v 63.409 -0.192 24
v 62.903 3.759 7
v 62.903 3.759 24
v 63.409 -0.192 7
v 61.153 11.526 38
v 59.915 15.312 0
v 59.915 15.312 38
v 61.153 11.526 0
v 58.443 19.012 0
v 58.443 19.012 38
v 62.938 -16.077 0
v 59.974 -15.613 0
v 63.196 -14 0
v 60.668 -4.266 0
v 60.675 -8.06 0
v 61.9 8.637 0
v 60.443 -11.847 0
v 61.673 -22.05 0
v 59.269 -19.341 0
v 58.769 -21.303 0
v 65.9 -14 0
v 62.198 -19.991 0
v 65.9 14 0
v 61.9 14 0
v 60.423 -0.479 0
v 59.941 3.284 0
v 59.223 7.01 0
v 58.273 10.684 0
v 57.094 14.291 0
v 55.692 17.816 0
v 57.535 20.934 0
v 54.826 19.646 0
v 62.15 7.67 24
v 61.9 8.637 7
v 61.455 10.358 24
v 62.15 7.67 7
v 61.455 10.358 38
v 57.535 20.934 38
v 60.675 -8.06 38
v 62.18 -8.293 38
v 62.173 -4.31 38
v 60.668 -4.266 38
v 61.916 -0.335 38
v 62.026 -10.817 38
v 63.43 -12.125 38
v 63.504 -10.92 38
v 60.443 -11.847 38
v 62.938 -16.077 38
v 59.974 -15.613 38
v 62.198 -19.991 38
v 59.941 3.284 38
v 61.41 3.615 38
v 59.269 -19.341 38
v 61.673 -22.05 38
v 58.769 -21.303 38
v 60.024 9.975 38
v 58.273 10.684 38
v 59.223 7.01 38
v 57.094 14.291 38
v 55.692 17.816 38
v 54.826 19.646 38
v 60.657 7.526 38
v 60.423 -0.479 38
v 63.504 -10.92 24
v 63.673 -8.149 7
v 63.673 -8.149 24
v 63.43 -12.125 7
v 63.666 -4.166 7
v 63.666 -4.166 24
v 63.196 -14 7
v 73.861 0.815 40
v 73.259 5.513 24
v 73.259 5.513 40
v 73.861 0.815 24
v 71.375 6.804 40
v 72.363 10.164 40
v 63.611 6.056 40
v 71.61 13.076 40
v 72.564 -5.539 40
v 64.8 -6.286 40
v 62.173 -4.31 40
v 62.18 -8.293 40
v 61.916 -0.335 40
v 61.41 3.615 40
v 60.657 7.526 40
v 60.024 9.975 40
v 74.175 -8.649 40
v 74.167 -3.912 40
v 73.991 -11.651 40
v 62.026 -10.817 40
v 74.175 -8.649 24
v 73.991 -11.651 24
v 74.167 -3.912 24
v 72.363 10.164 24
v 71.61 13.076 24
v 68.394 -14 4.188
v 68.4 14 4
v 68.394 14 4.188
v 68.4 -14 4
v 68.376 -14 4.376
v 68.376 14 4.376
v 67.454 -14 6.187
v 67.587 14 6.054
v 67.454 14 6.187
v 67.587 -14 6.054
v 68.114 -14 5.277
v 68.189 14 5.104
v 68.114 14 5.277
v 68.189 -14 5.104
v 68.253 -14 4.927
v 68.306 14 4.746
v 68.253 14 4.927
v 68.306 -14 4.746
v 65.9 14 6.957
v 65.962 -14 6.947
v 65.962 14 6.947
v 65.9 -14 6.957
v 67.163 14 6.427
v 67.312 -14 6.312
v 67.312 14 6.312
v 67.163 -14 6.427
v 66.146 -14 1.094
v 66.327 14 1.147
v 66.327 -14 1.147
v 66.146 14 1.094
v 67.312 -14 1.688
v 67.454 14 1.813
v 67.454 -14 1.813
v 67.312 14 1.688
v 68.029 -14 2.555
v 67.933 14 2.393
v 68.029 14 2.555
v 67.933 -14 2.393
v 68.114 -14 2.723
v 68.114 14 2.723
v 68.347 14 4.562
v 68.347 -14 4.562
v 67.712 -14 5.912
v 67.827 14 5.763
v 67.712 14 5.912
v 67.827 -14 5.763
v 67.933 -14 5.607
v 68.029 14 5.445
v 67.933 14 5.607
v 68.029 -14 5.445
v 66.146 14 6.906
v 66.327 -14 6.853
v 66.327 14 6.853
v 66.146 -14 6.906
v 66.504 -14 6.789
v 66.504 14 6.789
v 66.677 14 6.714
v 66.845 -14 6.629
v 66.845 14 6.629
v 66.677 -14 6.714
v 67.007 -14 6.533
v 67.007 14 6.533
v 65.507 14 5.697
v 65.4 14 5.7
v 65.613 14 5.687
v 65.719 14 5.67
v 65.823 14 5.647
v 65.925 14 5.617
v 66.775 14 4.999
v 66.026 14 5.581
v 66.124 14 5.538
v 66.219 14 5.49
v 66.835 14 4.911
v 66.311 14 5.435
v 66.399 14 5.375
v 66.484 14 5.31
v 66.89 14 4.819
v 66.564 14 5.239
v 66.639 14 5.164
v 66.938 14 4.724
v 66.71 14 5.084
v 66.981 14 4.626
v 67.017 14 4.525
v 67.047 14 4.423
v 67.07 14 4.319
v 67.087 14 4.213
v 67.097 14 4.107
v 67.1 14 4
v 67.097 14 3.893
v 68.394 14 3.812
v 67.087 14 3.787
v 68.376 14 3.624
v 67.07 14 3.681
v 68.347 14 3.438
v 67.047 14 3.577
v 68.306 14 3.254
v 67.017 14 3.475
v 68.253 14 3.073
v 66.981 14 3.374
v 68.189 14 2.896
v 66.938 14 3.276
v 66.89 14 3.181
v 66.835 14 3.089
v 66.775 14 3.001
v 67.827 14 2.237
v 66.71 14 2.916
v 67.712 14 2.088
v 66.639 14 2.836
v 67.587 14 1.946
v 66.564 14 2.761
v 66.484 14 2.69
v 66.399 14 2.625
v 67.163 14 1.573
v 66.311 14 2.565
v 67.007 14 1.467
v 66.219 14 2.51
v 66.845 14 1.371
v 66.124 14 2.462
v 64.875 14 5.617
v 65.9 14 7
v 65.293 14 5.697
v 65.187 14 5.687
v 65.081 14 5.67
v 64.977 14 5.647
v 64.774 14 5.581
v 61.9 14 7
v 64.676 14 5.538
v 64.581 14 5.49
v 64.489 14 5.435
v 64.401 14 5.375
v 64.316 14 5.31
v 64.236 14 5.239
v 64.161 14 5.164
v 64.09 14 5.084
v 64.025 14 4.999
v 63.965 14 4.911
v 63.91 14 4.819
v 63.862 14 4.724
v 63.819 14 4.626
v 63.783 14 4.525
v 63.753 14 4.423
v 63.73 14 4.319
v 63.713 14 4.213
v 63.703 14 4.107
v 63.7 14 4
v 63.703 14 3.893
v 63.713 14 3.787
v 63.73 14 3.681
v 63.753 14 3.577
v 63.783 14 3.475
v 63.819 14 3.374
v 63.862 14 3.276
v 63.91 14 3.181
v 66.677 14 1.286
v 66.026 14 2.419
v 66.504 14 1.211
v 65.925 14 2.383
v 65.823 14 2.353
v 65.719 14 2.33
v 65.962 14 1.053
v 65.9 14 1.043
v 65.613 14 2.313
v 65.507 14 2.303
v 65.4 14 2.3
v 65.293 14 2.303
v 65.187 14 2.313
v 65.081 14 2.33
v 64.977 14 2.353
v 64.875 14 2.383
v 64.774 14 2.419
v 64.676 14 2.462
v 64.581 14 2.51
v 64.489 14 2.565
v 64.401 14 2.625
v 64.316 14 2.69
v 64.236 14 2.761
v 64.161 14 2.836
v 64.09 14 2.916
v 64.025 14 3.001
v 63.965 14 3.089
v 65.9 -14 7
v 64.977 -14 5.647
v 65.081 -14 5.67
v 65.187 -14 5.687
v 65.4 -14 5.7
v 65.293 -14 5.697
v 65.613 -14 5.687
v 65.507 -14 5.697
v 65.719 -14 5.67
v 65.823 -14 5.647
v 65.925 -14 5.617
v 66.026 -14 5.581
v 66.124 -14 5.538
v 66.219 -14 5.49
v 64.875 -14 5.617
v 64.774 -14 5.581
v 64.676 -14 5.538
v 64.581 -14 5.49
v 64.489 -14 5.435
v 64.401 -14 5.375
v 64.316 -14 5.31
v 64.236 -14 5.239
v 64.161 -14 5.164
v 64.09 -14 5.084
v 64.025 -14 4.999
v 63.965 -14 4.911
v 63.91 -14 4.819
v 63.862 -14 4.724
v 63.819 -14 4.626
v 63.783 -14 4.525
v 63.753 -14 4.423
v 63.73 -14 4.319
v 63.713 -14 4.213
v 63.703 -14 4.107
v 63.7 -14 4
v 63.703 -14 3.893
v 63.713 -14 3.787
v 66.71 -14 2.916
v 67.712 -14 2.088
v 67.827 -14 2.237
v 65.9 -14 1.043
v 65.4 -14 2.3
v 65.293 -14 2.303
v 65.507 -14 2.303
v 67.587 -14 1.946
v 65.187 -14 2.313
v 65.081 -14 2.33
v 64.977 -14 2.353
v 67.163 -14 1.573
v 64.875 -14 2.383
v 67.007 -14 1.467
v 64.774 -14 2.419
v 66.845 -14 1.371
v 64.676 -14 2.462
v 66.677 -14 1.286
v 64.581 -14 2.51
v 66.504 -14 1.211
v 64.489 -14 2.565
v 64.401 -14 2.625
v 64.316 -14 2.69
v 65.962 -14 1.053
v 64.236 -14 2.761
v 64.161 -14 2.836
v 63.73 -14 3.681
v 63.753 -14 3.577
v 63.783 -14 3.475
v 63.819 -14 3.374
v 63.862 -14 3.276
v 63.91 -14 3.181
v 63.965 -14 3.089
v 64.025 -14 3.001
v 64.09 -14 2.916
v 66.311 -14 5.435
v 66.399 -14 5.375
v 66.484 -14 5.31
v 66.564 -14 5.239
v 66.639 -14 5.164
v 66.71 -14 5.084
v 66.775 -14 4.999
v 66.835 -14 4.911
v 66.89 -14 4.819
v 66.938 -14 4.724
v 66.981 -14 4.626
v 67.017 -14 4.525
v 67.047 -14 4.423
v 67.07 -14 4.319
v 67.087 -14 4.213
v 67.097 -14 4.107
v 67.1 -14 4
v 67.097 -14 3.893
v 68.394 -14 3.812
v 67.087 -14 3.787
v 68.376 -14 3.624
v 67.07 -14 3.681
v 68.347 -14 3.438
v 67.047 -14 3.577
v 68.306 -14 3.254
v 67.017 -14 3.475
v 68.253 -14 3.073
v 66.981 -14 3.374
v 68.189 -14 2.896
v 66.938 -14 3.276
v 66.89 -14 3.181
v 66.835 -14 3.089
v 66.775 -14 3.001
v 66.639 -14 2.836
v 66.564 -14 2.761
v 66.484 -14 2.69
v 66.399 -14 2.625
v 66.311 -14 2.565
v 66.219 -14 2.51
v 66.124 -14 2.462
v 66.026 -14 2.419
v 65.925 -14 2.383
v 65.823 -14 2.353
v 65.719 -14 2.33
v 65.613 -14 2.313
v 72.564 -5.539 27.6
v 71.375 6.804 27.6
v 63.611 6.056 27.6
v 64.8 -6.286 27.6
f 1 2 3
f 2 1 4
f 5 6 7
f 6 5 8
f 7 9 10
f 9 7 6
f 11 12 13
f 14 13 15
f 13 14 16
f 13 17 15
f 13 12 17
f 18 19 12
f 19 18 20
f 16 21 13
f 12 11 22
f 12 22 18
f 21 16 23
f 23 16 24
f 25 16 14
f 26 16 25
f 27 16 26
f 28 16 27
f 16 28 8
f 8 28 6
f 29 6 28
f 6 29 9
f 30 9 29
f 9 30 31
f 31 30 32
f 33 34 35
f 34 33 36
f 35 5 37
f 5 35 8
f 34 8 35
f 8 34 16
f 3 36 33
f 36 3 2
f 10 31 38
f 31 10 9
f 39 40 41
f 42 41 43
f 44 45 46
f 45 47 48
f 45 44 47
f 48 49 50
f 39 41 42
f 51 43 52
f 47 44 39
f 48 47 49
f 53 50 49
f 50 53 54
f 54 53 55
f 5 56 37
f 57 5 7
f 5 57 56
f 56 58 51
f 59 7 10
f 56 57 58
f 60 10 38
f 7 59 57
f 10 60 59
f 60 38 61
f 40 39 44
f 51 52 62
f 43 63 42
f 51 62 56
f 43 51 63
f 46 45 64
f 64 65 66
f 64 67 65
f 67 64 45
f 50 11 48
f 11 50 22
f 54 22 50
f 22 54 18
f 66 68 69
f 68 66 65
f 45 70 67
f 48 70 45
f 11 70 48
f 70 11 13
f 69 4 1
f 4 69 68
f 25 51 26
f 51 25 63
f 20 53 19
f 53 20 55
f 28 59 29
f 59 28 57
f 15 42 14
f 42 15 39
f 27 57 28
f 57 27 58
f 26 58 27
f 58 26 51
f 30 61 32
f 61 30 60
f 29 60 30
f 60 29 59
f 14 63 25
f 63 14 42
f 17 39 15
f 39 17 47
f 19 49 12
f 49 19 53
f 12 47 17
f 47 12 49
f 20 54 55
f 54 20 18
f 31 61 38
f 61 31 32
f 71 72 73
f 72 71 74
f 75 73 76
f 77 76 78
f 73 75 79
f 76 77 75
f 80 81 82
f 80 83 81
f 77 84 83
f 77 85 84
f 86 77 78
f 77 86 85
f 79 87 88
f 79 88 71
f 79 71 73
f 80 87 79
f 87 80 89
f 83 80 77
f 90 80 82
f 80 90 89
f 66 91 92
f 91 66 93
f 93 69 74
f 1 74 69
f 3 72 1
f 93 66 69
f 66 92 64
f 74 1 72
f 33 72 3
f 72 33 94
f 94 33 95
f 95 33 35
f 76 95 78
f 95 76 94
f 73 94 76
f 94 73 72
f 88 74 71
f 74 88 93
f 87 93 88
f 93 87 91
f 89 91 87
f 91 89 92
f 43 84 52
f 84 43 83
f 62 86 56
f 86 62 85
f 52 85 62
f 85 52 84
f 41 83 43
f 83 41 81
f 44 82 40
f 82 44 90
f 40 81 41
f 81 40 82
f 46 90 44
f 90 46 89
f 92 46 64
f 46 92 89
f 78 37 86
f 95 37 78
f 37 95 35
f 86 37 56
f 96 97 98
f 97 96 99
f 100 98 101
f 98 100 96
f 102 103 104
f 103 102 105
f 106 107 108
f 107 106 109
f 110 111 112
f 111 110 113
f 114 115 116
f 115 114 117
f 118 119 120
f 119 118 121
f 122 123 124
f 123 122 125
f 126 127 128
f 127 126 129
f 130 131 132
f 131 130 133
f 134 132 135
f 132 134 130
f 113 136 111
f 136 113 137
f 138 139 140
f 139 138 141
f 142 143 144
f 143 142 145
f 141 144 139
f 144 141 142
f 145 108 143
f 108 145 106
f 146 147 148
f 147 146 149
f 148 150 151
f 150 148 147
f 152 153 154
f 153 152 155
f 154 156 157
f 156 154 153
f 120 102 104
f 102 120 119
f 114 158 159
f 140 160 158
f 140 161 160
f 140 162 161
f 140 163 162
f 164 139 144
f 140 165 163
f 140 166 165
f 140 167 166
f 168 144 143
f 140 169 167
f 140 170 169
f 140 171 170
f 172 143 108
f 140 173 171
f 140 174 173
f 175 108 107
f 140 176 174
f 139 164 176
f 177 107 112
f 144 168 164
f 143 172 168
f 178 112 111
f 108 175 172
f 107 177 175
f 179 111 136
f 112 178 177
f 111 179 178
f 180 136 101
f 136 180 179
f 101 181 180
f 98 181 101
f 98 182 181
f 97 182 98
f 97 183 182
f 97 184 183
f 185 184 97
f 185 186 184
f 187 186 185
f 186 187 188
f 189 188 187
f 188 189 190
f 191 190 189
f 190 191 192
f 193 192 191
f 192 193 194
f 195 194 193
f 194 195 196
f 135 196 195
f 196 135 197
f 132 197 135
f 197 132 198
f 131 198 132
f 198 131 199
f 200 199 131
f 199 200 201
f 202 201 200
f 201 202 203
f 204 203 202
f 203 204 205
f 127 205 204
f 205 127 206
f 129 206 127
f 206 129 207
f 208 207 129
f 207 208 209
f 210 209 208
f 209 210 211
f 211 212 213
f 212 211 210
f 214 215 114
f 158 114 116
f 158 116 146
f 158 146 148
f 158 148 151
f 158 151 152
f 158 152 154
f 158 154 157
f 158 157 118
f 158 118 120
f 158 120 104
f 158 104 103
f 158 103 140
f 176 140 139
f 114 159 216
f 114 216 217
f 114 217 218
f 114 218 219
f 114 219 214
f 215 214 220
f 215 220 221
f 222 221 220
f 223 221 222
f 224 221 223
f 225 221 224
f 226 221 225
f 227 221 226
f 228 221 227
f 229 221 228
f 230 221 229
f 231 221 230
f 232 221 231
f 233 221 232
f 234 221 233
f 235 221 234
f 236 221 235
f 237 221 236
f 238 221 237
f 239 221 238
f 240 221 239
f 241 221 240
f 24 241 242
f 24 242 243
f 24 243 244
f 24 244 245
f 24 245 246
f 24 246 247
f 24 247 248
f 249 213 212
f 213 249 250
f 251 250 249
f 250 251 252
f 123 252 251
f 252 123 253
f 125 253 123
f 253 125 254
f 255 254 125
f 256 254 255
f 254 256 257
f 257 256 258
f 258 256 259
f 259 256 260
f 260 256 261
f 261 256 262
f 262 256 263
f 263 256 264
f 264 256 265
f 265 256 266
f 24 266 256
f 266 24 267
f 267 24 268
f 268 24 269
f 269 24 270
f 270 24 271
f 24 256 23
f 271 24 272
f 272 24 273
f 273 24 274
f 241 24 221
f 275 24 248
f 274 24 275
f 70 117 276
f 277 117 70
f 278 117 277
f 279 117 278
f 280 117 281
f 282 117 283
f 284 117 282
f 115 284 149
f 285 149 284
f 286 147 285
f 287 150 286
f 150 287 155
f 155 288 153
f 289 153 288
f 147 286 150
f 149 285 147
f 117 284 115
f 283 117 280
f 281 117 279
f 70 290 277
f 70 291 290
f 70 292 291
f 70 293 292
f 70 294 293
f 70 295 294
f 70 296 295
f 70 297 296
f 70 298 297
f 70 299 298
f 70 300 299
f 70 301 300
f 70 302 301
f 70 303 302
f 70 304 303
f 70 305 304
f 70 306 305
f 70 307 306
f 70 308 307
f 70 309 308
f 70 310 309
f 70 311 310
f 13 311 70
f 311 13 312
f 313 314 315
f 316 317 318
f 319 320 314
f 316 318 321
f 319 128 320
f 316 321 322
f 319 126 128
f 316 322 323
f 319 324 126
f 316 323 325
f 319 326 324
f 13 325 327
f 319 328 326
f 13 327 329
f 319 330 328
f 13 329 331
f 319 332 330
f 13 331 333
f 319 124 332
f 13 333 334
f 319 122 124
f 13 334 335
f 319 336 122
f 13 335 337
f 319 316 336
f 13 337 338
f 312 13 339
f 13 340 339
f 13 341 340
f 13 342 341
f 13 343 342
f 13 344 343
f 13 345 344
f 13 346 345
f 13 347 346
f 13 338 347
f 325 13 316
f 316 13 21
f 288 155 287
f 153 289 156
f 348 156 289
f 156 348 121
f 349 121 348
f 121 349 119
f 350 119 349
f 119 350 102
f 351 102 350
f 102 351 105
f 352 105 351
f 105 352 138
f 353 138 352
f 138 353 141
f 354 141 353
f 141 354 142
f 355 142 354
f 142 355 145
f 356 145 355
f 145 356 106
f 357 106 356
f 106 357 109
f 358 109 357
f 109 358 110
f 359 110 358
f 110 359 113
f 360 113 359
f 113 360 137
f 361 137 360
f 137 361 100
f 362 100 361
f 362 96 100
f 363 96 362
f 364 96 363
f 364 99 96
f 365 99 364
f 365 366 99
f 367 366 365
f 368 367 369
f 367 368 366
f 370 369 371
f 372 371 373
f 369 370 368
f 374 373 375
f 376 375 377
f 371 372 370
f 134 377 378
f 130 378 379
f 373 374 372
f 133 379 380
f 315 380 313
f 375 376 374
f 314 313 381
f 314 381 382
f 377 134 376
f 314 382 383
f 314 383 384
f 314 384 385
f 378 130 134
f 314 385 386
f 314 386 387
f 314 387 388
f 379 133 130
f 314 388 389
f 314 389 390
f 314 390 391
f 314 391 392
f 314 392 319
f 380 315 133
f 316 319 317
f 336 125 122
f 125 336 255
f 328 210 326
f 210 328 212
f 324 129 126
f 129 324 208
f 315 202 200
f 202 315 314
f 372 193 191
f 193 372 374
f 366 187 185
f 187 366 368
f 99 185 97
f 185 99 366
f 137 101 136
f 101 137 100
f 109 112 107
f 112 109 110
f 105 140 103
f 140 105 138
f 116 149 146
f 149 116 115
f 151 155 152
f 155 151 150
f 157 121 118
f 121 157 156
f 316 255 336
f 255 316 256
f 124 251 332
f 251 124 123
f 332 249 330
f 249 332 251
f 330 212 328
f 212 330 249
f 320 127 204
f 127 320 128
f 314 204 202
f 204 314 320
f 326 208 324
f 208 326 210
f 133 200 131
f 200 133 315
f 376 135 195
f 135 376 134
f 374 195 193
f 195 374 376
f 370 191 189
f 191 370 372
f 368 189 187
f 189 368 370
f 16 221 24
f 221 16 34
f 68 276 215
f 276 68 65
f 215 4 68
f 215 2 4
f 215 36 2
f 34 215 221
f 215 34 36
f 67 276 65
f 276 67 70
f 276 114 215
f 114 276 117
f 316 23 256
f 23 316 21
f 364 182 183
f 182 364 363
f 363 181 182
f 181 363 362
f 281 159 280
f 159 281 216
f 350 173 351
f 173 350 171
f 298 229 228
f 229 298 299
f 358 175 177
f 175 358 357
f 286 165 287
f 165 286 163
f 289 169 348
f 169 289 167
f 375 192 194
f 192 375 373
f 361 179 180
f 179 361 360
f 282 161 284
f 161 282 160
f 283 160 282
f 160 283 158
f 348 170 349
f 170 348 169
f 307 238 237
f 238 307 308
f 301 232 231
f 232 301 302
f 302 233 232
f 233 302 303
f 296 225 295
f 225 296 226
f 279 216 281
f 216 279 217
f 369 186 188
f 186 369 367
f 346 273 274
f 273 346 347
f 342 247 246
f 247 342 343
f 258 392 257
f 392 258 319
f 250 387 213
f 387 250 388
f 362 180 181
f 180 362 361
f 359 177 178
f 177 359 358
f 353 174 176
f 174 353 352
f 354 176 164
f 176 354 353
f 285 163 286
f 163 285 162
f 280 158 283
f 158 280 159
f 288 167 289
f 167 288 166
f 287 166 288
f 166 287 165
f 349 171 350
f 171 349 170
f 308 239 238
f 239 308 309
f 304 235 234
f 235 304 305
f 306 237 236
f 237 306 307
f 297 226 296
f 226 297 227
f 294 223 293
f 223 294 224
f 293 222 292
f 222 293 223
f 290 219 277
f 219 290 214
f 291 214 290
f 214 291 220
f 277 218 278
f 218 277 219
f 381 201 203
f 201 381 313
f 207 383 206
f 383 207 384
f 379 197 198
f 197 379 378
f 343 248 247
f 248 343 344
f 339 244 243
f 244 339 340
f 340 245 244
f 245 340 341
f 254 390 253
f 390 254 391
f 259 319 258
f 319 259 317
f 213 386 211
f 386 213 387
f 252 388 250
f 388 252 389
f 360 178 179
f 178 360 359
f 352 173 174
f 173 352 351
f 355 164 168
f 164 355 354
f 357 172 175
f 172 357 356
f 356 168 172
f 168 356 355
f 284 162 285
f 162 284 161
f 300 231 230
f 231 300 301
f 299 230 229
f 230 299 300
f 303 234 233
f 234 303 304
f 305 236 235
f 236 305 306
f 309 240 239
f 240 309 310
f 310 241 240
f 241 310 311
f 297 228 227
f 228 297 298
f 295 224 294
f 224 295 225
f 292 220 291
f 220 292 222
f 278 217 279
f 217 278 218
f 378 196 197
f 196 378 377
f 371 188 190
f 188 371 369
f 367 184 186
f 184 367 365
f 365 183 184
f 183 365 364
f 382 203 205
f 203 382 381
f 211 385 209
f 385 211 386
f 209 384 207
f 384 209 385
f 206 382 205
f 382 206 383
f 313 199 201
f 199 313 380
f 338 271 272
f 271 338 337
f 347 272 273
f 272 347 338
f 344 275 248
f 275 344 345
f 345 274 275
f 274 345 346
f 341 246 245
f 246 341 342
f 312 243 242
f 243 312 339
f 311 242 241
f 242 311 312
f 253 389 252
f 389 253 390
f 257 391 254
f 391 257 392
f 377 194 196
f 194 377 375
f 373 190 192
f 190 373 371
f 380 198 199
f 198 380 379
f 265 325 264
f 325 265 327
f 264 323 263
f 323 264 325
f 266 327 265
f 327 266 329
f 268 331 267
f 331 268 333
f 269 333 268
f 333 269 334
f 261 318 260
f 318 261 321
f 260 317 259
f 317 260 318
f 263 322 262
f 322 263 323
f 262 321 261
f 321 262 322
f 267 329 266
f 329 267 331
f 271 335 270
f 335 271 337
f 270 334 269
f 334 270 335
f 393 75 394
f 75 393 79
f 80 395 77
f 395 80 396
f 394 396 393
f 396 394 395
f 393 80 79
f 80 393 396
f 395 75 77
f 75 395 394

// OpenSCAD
// Medify - Curved outlet door (solid hinge barrel)

$fn = 100;

// Based on Floor1_3
outer_radius = 60;

// Door settings
door_inner_radius = outer_radius + 0.4;
door_thickness = 3;
door_height = 38;
door_arc_width = 42;

// Hinge settings
hinge_diameter = 6;
hinge_hole_diameter = 3.4; // M3
hinge_z = 4;

// Handle
handle_w = 20;
handle_h = 16;
handle_t = 12;

// Magnet
magnet_d = 12.4;
magnet_t = 7.8;
magnet_x_offset = 0.8;

// Angle correction
door_panel_angle_fix = 5.5;

hinge_x = door_inner_radius + door_thickness + hinge_diameter/2 - 1;

door_angle = door_arc_width / door_inner_radius;
door_angle_deg = door_angle * 180 / 3.14159;

module rotate_around_hinge() {
    translate([hinge_x, 0, 0])
        rotate([0, 0, door_panel_angle_fix])
            translate([-hinge_x, 0, 0])
                children();
}

module curved_door_panel() {
    intersection() {
        difference() {
            cylinder(h = door_height, r = door_inner_radius + door_thickness);
            translate([0, 0, -1])
                cylinder(h = door_height + 2, r = door_inner_radius);
        }

        rotate([0, 0, -door_angle_deg / 2])
            linear_extrude(height = door_height)
                polygon([
                    [0, 0],
                    [door_inner_radius + door_thickness + 5, 0],
                    [(door_inner_radius + door_thickness + 5) * cos(door_angle_deg),
                     (door_inner_radius + door_thickness + 5) * sin(door_angle_deg)]
                ]);
    }
}

module curved_handle() {
    translate([-1.5, 0, door_height - 14])
        intersection() {
            difference() {
                cylinder(h = handle_h, r = door_inner_radius + door_thickness + handle_t);
                translate([0, 0, -1])
                    cylinder(h = handle_h + 2, r = door_inner_radius + door_thickness);
            }

            rotate([0, 0, -(handle_w / door_inner_radius * 180 / 3.14159) / 2])
                linear_extrude(height = handle_h)
                    polygon([
                        [0, 0],
                        [door_inner_radius + door_thickness + handle_t + 5, 0],
                        [(door_inner_radius + door_thickness + handle_t + 5) * cos(handle_w / door_inner_radius * 180 / 3.14159),
                         (door_inner_radius + door_thickness + handle_t + 5) * sin(handle_w / door_inner_radius * 180 / 3.14159)]
                    ]);
        }
}

module curved_outlet_door() {
    difference() {
        union() {
            rotate_around_hinge()
                curved_door_panel();

            translate([hinge_x, 0, hinge_z])
                rotate([90, 0, 0])
                    cylinder(h = door_arc_width - 14, d = hinge_diameter, center = true);

            translate([door_inner_radius + door_thickness - 1.5, -door_arc_width/2 + 7, 0])
                cube([4, door_arc_width - 14, hinge_z + hinge_diameter/2]);

            rotate_around_hinge()
                curved_handle();
        }

        translate([hinge_x, 0, hinge_z])
            rotate([90, 0, 0])
                cylinder(h = door_arc_width + 4, d = hinge_hole_diameter, center = true);

        // Magnet pocket 10X4, rectangular, open from top
        rotate_around_hinge()
            translate([
                door_inner_radius + door_thickness + magnet_x_offset,
                -magnet_d/2,
                door_height - 14 + handle_h - magnet_d
            ])
                cube([magnet_t, magnet_d, magnet_d + 1]);
    }
}

curved_outlet_door();
